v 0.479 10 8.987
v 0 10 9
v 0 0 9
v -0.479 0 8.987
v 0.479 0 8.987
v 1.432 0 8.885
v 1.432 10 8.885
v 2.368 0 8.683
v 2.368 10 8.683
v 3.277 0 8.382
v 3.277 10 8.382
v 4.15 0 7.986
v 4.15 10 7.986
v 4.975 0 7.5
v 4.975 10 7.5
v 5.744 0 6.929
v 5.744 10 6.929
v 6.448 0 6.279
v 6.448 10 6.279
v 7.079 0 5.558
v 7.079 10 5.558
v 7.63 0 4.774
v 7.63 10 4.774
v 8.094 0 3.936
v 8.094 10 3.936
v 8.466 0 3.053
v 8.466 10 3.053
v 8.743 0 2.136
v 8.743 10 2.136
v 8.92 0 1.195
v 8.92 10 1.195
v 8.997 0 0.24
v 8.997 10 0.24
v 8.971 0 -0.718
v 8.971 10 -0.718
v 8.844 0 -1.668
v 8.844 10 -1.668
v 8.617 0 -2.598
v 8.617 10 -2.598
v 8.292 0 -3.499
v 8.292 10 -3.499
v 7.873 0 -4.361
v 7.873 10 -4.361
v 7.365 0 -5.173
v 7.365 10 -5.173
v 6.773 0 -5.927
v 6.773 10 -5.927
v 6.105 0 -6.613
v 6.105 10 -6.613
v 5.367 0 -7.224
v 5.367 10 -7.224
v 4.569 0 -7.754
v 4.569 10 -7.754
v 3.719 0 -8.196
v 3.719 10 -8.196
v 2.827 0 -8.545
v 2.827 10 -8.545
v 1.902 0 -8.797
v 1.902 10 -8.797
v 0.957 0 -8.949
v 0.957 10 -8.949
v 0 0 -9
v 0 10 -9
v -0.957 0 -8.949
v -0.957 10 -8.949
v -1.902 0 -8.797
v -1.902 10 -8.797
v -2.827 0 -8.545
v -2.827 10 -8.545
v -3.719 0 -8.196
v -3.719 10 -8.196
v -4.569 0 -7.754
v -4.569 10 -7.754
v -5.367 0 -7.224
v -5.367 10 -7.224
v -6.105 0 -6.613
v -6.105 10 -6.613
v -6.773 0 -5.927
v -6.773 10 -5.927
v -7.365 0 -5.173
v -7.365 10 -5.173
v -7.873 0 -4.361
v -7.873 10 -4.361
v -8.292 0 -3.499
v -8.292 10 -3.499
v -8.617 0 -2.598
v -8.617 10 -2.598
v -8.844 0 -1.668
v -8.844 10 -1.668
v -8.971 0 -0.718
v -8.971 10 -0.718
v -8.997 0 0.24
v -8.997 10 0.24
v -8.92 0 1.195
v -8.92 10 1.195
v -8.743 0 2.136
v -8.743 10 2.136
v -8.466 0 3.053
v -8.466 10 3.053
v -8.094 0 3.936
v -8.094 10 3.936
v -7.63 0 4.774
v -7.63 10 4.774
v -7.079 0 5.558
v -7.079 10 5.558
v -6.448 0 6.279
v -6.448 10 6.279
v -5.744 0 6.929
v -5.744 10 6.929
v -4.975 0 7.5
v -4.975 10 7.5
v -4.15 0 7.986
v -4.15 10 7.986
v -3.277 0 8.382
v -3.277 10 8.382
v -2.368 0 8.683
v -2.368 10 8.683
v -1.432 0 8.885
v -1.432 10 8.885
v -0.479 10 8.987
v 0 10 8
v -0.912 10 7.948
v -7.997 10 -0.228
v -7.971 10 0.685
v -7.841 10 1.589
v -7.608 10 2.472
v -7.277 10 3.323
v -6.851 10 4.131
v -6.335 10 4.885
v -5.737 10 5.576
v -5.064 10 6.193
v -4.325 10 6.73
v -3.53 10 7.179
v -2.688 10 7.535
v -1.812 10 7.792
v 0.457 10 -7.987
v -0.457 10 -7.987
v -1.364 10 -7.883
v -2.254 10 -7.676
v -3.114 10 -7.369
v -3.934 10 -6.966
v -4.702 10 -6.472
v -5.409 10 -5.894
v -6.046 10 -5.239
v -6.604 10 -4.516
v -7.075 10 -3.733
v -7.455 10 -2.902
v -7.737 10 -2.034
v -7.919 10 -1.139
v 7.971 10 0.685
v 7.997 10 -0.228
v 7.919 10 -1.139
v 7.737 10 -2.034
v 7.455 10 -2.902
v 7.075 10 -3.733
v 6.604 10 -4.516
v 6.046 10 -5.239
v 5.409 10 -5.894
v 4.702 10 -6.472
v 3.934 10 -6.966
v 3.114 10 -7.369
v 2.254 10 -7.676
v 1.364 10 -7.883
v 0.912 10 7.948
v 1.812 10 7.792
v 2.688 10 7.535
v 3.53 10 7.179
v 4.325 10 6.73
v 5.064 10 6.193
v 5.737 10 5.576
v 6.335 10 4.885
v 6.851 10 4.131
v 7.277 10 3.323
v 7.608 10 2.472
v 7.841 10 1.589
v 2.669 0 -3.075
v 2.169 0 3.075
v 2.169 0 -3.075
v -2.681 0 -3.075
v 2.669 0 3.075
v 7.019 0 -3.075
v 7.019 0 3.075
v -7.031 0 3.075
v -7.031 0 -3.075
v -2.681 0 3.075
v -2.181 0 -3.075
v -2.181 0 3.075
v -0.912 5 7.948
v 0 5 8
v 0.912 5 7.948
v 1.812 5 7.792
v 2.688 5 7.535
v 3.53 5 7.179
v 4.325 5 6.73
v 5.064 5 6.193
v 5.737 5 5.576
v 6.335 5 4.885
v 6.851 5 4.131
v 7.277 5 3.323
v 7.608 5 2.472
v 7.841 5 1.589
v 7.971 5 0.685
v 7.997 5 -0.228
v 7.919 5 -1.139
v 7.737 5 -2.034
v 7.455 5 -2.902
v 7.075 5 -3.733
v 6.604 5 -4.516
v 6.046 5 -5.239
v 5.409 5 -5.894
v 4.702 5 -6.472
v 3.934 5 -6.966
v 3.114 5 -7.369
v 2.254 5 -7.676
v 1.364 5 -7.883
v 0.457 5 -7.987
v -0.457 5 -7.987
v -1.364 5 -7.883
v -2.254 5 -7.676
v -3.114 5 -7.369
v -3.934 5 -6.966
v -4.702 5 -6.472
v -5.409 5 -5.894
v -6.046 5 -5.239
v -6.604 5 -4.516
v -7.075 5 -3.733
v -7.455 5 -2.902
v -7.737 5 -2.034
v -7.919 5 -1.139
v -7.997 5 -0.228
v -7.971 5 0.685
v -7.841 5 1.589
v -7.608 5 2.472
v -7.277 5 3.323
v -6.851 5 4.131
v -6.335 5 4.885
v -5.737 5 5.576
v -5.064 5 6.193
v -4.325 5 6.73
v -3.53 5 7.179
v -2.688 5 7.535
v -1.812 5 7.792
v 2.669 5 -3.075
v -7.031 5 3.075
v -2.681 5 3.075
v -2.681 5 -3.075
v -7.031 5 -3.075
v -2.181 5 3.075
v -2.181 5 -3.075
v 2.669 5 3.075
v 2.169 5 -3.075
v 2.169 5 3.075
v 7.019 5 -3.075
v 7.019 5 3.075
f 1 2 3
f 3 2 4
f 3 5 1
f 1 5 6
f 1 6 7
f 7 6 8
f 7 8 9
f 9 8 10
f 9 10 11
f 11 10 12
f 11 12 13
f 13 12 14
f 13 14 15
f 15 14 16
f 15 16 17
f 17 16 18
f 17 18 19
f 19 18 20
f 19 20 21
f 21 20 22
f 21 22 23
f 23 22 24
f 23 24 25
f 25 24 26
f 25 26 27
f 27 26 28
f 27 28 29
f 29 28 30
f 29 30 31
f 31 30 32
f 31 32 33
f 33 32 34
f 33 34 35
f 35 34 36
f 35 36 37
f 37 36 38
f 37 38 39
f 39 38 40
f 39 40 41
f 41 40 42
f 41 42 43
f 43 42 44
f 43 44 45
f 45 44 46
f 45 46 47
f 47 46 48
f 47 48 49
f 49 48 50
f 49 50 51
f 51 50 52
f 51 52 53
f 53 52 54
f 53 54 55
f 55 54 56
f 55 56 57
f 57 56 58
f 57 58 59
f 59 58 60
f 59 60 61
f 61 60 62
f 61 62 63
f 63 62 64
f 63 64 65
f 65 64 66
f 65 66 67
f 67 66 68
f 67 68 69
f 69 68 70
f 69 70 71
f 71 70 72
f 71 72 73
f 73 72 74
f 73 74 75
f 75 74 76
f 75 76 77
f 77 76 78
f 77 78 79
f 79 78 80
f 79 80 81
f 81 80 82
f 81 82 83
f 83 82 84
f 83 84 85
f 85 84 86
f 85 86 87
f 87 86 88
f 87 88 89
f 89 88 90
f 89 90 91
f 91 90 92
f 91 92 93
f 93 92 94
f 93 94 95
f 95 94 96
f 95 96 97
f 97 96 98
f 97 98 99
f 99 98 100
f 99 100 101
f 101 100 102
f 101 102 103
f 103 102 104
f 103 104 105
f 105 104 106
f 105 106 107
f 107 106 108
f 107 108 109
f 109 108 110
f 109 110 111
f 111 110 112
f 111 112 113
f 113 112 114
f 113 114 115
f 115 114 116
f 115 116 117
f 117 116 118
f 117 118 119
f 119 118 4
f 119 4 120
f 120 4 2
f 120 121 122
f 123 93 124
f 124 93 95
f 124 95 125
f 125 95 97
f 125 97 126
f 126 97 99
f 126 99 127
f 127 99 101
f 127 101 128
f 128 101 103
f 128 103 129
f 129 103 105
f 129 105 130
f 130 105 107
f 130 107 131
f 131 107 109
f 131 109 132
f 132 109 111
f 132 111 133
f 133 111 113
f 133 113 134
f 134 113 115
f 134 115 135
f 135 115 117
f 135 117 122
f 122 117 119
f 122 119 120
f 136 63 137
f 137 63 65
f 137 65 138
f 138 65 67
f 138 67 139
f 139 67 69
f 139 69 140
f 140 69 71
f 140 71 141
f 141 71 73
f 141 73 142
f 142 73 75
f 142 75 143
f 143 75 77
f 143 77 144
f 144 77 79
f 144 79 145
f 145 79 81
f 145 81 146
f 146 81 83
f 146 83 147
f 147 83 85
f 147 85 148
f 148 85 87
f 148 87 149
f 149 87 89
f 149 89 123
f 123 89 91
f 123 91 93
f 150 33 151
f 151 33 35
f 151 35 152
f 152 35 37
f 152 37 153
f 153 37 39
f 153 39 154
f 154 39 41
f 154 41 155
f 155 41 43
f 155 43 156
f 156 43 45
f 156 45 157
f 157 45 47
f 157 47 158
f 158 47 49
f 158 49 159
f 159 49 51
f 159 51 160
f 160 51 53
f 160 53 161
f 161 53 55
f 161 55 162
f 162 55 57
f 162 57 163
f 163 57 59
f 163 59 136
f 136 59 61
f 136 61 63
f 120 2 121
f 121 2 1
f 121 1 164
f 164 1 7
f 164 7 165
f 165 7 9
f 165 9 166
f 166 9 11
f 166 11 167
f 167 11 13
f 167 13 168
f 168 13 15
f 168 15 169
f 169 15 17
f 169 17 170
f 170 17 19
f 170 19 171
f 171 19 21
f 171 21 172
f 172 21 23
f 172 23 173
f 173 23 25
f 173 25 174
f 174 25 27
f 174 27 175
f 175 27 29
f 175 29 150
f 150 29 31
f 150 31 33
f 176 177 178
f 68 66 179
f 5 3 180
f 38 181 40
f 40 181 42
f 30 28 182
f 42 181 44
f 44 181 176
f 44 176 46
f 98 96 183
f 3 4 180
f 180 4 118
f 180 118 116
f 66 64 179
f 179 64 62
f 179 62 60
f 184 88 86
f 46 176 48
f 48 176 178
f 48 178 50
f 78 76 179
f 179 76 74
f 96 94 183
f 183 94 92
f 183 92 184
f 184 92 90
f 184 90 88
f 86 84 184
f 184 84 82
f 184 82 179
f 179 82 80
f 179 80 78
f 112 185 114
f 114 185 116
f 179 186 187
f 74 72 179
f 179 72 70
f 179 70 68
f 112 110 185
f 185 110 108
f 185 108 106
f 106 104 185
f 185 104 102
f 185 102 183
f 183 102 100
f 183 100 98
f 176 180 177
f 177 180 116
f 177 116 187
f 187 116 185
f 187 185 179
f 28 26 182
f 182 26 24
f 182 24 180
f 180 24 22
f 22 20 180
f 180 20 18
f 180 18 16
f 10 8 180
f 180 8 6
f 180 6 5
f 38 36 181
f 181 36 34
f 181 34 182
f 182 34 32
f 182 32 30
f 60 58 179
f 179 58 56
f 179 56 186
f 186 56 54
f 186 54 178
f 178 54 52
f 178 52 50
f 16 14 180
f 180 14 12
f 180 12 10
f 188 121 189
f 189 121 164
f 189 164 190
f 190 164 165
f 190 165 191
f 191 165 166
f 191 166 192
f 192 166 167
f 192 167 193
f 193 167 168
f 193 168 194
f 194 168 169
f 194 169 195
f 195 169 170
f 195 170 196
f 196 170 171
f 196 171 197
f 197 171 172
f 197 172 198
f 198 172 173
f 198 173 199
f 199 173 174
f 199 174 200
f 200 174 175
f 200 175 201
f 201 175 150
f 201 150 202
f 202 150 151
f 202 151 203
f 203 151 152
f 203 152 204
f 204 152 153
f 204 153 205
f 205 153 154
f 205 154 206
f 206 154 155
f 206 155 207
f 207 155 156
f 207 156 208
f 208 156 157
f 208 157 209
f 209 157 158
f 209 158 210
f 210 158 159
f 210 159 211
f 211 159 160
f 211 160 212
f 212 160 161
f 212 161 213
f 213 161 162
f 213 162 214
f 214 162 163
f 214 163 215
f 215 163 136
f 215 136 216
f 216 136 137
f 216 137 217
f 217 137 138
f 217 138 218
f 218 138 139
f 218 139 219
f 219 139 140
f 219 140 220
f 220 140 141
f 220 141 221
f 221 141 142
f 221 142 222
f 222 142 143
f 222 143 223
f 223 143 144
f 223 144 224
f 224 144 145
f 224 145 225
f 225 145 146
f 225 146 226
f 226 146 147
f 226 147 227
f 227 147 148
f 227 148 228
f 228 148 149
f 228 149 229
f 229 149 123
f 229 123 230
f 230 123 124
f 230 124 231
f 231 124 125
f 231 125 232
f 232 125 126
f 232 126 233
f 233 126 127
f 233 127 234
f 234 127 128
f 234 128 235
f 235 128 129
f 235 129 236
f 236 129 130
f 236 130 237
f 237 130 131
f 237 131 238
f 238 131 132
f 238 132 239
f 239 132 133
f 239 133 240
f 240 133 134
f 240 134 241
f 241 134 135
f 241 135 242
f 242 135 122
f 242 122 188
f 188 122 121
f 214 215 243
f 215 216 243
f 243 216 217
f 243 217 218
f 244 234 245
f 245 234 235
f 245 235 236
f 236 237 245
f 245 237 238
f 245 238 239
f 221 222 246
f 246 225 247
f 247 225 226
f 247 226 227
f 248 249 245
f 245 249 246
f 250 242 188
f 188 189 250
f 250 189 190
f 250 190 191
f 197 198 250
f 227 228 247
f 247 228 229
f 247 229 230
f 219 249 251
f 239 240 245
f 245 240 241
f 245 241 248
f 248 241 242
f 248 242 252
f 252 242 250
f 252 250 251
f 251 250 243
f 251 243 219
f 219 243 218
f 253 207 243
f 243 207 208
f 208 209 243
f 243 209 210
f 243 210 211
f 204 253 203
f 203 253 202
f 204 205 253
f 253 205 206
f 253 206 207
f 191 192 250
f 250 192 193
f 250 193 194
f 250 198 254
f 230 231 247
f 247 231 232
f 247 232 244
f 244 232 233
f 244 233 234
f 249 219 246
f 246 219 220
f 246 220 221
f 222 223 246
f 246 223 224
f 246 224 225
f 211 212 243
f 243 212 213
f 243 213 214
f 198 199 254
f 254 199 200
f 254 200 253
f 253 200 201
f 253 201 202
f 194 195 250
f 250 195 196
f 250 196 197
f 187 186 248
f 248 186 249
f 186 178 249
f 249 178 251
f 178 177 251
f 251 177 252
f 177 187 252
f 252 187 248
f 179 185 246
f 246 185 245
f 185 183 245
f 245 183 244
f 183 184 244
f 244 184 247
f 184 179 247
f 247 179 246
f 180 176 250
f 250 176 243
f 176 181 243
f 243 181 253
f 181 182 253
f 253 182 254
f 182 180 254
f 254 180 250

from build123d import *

# Parameters (mm, degrees)
SKETCH2_R           = 9
BOSS_EXTRUDE2_DEPTH = 10
SKETCH3_R           = 8
CUT_EXTRUDE1_DEPTH  = 5
SKETCH4_W           = 4.35
SKETCH4_H           = 6.15
CUT_EXTRUDE2_DEPTH  = 6


with BuildPart() as part:
    # Sketch2 → Boss-Extrude2 (new body)
    with BuildSketch(Plane(origin=(0, 0, 0), x_dir=(1, 0, 0), z_dir=(0, 1, 0))):
        Circle(SKETCH2_R)
    extrude(amount=BOSS_EXTRUDE2_DEPTH)

    # Sketch3 → Cut-Extrude1 (cut)
    with BuildSketch(Plane(origin=(0, 10, 0), x_dir=(1, 0, 0), z_dir=(0, 1, 0))):
        Circle(SKETCH3_R)
    extrude(amount=-CUT_EXTRUDE1_DEPTH, mode=Mode.SUBTRACT)

    # Sketch4 → Cut-Extrude2 (cut, through all)
    with BuildSketch(Plane(origin=(0, 5, 0), x_dir=(1, 0, 0), z_dir=(0, 1, 0))):
        with Locations((-0.006105592, 0)):
            Rectangle(SKETCH4_W, SKETCH4_H)
        with Locations((-4.856105592, 0)):
            Rectangle(SKETCH4_W, SKETCH4_H)
        with Locations((4.843894408, 0)):
            Rectangle(SKETCH4_W, SKETCH4_H)
    extrude(amount=-CUT_EXTRUDE2_DEPTH, mode=Mode.SUBTRACT)


solid = part.part
